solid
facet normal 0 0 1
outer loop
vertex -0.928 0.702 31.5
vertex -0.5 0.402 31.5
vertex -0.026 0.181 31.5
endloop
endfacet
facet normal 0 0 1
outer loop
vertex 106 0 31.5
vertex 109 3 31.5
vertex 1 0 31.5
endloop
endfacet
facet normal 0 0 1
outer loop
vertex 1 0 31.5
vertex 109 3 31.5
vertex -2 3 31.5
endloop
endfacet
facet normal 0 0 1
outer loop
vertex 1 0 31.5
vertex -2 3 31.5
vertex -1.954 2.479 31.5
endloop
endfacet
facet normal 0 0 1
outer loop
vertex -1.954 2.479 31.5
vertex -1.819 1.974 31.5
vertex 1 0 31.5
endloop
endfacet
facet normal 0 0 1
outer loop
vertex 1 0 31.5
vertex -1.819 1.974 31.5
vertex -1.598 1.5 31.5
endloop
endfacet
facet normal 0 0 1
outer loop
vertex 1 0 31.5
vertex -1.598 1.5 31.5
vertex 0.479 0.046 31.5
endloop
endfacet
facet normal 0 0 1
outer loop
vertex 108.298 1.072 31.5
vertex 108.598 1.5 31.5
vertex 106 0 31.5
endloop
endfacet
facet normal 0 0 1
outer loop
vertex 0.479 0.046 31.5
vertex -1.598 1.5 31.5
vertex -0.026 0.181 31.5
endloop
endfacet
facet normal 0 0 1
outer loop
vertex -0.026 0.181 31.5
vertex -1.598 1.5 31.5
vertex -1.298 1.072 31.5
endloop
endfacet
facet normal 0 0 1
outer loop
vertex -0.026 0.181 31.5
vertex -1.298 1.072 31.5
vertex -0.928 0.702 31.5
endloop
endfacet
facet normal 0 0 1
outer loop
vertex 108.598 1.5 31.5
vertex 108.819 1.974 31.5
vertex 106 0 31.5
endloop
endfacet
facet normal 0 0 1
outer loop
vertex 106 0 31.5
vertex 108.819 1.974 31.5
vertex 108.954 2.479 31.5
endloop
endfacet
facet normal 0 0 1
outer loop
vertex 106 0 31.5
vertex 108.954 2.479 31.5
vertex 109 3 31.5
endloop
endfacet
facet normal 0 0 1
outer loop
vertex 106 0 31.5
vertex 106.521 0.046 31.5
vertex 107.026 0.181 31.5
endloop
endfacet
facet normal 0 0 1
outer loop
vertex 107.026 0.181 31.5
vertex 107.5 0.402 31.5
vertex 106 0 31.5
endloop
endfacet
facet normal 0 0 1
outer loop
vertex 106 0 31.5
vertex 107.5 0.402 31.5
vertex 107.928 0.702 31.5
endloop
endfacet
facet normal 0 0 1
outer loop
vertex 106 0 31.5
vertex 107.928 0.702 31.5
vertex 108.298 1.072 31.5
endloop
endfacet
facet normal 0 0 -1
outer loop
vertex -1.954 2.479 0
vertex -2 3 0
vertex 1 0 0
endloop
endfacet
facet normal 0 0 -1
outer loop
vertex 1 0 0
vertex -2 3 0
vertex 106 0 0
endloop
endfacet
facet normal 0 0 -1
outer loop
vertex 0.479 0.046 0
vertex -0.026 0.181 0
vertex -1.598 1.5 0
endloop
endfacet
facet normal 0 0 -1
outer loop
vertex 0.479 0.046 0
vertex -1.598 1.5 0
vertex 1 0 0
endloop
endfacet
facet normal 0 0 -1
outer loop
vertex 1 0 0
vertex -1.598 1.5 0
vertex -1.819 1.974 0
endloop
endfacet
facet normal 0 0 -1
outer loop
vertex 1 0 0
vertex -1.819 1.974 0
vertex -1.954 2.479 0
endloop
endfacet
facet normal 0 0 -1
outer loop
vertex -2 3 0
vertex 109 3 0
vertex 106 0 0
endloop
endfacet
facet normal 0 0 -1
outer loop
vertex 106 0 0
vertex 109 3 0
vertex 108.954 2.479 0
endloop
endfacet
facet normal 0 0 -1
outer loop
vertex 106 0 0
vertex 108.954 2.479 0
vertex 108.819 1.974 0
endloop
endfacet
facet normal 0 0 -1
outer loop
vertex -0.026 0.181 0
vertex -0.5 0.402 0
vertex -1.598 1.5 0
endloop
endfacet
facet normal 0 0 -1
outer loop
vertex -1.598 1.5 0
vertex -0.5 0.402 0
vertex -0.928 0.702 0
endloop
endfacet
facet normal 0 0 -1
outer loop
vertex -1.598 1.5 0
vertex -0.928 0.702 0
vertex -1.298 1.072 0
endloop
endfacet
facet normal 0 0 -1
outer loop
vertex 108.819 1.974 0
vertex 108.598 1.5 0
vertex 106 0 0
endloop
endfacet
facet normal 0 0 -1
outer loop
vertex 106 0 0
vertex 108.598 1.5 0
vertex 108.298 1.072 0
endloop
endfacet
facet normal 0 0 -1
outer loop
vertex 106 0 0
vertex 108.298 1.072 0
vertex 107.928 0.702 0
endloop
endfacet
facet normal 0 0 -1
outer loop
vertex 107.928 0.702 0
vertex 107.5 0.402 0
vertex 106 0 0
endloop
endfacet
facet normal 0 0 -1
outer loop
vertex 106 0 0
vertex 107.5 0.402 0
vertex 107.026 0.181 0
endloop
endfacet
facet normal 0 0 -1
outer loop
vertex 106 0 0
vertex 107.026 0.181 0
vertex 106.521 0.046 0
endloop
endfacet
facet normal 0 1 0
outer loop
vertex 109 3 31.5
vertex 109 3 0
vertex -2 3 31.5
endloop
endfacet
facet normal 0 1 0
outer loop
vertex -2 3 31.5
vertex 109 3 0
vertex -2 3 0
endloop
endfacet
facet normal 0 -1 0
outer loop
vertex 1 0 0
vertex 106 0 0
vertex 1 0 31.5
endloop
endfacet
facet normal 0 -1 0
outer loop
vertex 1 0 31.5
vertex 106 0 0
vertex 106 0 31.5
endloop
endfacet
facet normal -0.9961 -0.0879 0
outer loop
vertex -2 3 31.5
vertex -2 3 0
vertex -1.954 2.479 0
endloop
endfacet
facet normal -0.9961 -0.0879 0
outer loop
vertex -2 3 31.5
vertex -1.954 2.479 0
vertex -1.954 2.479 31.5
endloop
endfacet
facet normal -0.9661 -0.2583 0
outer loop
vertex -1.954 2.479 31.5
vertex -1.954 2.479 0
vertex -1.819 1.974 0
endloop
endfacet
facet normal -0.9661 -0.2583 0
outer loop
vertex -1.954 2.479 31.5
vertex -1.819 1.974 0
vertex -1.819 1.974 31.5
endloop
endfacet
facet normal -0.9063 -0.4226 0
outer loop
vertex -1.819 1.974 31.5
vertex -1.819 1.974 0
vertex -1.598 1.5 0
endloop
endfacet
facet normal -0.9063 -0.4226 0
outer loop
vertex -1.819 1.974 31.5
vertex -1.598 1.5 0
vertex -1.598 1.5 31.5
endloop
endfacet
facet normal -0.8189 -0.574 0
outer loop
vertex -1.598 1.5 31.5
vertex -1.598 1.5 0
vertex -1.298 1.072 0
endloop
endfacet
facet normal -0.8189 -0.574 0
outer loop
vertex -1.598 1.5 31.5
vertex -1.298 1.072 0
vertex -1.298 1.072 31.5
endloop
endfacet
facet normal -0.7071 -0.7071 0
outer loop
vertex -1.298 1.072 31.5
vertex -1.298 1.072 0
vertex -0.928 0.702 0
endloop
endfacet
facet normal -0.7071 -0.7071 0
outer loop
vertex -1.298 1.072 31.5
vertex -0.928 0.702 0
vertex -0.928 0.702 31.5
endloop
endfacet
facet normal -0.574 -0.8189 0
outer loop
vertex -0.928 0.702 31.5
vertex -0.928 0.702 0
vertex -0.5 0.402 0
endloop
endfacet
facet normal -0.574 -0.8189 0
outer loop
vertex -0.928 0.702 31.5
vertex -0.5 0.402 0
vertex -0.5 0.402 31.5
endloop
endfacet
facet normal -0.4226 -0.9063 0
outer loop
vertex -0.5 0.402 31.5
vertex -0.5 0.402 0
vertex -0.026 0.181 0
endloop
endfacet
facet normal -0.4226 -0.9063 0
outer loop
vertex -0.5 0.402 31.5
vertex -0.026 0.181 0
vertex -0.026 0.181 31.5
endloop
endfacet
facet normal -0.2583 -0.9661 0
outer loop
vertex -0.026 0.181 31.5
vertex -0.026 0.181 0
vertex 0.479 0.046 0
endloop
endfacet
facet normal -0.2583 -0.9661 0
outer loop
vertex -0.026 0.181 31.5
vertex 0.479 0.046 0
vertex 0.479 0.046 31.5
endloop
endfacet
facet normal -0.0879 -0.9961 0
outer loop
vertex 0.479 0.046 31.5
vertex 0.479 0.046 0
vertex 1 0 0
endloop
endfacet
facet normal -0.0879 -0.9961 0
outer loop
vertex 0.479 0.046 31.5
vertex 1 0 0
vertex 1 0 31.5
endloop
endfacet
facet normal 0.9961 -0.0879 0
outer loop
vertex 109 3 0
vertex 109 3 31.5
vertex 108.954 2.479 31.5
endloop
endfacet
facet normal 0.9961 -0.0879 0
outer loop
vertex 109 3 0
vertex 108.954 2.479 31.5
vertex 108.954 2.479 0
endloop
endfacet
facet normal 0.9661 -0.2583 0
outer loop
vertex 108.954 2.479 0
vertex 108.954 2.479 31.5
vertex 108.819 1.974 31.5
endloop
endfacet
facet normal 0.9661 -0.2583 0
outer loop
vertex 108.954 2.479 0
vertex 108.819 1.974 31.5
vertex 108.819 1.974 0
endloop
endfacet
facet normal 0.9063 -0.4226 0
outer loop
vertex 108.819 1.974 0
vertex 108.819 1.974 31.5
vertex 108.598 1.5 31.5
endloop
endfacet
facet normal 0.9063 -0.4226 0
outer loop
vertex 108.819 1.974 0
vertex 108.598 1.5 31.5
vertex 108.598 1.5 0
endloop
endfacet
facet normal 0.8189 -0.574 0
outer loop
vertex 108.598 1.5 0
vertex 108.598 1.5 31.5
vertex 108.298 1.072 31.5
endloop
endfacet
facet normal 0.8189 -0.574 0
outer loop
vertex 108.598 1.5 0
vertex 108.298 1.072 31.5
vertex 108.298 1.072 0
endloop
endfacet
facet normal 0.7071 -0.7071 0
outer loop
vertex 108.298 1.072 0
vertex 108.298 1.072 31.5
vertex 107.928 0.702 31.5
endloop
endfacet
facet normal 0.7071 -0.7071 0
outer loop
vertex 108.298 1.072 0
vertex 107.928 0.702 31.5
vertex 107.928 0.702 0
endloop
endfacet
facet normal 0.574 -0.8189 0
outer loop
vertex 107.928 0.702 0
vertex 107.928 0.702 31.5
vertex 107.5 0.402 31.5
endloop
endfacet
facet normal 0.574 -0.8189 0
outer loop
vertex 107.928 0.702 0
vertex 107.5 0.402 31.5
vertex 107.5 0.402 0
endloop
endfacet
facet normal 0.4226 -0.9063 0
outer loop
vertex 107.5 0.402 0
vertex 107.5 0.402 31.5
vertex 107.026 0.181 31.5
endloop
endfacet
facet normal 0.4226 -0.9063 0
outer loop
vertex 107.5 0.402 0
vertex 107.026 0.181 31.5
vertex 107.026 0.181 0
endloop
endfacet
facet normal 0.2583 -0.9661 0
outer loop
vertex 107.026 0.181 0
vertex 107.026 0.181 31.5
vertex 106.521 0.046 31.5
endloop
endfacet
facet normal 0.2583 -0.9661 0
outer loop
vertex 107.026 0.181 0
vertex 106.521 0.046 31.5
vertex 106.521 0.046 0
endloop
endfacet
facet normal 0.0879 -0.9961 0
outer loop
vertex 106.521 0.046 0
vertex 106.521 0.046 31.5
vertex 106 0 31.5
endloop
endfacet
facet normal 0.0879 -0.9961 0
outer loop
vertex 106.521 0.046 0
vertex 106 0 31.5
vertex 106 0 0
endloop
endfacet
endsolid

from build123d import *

# Parameters (mm, degrees)
SKETCH_1_W                       = 111
SKETCH_1_H                       = 31.5
EXTRUDE_1_DEPTH                  = 3
TOOL_D3_R3_FRONT_OUTER_CORNERS_R = 3


with BuildPart() as part:
    # Эскиз1 → Бобышка-Вытянуть1 (new body)
    with BuildSketch(Plane(origin=(0, 0, 0), x_dir=(1, 0, 0), z_dir=(0, 1, 0))):
        with Locations((53.5, -15.75)):
            Rectangle(SKETCH_1_W, SKETCH_1_H)
    extrude(amount=EXTRUDE_1_DEPTH)

    # tool_D3_R3_front_outer_corners
    tool_d3_r3_front_outer_corners_edges = [part.edges().sort_by_distance(p)[0] for p in [
        (-2, 0, 15.75),
        (109, 0, 15.75),
    ]]
    fillet(tool_d3_r3_front_outer_corners_edges, radius=TOOL_D3_R3_FRONT_OUTER_CORNERS_R - 0.0001)  # a hair under: the kernel refuses the full size


solid = part.part
